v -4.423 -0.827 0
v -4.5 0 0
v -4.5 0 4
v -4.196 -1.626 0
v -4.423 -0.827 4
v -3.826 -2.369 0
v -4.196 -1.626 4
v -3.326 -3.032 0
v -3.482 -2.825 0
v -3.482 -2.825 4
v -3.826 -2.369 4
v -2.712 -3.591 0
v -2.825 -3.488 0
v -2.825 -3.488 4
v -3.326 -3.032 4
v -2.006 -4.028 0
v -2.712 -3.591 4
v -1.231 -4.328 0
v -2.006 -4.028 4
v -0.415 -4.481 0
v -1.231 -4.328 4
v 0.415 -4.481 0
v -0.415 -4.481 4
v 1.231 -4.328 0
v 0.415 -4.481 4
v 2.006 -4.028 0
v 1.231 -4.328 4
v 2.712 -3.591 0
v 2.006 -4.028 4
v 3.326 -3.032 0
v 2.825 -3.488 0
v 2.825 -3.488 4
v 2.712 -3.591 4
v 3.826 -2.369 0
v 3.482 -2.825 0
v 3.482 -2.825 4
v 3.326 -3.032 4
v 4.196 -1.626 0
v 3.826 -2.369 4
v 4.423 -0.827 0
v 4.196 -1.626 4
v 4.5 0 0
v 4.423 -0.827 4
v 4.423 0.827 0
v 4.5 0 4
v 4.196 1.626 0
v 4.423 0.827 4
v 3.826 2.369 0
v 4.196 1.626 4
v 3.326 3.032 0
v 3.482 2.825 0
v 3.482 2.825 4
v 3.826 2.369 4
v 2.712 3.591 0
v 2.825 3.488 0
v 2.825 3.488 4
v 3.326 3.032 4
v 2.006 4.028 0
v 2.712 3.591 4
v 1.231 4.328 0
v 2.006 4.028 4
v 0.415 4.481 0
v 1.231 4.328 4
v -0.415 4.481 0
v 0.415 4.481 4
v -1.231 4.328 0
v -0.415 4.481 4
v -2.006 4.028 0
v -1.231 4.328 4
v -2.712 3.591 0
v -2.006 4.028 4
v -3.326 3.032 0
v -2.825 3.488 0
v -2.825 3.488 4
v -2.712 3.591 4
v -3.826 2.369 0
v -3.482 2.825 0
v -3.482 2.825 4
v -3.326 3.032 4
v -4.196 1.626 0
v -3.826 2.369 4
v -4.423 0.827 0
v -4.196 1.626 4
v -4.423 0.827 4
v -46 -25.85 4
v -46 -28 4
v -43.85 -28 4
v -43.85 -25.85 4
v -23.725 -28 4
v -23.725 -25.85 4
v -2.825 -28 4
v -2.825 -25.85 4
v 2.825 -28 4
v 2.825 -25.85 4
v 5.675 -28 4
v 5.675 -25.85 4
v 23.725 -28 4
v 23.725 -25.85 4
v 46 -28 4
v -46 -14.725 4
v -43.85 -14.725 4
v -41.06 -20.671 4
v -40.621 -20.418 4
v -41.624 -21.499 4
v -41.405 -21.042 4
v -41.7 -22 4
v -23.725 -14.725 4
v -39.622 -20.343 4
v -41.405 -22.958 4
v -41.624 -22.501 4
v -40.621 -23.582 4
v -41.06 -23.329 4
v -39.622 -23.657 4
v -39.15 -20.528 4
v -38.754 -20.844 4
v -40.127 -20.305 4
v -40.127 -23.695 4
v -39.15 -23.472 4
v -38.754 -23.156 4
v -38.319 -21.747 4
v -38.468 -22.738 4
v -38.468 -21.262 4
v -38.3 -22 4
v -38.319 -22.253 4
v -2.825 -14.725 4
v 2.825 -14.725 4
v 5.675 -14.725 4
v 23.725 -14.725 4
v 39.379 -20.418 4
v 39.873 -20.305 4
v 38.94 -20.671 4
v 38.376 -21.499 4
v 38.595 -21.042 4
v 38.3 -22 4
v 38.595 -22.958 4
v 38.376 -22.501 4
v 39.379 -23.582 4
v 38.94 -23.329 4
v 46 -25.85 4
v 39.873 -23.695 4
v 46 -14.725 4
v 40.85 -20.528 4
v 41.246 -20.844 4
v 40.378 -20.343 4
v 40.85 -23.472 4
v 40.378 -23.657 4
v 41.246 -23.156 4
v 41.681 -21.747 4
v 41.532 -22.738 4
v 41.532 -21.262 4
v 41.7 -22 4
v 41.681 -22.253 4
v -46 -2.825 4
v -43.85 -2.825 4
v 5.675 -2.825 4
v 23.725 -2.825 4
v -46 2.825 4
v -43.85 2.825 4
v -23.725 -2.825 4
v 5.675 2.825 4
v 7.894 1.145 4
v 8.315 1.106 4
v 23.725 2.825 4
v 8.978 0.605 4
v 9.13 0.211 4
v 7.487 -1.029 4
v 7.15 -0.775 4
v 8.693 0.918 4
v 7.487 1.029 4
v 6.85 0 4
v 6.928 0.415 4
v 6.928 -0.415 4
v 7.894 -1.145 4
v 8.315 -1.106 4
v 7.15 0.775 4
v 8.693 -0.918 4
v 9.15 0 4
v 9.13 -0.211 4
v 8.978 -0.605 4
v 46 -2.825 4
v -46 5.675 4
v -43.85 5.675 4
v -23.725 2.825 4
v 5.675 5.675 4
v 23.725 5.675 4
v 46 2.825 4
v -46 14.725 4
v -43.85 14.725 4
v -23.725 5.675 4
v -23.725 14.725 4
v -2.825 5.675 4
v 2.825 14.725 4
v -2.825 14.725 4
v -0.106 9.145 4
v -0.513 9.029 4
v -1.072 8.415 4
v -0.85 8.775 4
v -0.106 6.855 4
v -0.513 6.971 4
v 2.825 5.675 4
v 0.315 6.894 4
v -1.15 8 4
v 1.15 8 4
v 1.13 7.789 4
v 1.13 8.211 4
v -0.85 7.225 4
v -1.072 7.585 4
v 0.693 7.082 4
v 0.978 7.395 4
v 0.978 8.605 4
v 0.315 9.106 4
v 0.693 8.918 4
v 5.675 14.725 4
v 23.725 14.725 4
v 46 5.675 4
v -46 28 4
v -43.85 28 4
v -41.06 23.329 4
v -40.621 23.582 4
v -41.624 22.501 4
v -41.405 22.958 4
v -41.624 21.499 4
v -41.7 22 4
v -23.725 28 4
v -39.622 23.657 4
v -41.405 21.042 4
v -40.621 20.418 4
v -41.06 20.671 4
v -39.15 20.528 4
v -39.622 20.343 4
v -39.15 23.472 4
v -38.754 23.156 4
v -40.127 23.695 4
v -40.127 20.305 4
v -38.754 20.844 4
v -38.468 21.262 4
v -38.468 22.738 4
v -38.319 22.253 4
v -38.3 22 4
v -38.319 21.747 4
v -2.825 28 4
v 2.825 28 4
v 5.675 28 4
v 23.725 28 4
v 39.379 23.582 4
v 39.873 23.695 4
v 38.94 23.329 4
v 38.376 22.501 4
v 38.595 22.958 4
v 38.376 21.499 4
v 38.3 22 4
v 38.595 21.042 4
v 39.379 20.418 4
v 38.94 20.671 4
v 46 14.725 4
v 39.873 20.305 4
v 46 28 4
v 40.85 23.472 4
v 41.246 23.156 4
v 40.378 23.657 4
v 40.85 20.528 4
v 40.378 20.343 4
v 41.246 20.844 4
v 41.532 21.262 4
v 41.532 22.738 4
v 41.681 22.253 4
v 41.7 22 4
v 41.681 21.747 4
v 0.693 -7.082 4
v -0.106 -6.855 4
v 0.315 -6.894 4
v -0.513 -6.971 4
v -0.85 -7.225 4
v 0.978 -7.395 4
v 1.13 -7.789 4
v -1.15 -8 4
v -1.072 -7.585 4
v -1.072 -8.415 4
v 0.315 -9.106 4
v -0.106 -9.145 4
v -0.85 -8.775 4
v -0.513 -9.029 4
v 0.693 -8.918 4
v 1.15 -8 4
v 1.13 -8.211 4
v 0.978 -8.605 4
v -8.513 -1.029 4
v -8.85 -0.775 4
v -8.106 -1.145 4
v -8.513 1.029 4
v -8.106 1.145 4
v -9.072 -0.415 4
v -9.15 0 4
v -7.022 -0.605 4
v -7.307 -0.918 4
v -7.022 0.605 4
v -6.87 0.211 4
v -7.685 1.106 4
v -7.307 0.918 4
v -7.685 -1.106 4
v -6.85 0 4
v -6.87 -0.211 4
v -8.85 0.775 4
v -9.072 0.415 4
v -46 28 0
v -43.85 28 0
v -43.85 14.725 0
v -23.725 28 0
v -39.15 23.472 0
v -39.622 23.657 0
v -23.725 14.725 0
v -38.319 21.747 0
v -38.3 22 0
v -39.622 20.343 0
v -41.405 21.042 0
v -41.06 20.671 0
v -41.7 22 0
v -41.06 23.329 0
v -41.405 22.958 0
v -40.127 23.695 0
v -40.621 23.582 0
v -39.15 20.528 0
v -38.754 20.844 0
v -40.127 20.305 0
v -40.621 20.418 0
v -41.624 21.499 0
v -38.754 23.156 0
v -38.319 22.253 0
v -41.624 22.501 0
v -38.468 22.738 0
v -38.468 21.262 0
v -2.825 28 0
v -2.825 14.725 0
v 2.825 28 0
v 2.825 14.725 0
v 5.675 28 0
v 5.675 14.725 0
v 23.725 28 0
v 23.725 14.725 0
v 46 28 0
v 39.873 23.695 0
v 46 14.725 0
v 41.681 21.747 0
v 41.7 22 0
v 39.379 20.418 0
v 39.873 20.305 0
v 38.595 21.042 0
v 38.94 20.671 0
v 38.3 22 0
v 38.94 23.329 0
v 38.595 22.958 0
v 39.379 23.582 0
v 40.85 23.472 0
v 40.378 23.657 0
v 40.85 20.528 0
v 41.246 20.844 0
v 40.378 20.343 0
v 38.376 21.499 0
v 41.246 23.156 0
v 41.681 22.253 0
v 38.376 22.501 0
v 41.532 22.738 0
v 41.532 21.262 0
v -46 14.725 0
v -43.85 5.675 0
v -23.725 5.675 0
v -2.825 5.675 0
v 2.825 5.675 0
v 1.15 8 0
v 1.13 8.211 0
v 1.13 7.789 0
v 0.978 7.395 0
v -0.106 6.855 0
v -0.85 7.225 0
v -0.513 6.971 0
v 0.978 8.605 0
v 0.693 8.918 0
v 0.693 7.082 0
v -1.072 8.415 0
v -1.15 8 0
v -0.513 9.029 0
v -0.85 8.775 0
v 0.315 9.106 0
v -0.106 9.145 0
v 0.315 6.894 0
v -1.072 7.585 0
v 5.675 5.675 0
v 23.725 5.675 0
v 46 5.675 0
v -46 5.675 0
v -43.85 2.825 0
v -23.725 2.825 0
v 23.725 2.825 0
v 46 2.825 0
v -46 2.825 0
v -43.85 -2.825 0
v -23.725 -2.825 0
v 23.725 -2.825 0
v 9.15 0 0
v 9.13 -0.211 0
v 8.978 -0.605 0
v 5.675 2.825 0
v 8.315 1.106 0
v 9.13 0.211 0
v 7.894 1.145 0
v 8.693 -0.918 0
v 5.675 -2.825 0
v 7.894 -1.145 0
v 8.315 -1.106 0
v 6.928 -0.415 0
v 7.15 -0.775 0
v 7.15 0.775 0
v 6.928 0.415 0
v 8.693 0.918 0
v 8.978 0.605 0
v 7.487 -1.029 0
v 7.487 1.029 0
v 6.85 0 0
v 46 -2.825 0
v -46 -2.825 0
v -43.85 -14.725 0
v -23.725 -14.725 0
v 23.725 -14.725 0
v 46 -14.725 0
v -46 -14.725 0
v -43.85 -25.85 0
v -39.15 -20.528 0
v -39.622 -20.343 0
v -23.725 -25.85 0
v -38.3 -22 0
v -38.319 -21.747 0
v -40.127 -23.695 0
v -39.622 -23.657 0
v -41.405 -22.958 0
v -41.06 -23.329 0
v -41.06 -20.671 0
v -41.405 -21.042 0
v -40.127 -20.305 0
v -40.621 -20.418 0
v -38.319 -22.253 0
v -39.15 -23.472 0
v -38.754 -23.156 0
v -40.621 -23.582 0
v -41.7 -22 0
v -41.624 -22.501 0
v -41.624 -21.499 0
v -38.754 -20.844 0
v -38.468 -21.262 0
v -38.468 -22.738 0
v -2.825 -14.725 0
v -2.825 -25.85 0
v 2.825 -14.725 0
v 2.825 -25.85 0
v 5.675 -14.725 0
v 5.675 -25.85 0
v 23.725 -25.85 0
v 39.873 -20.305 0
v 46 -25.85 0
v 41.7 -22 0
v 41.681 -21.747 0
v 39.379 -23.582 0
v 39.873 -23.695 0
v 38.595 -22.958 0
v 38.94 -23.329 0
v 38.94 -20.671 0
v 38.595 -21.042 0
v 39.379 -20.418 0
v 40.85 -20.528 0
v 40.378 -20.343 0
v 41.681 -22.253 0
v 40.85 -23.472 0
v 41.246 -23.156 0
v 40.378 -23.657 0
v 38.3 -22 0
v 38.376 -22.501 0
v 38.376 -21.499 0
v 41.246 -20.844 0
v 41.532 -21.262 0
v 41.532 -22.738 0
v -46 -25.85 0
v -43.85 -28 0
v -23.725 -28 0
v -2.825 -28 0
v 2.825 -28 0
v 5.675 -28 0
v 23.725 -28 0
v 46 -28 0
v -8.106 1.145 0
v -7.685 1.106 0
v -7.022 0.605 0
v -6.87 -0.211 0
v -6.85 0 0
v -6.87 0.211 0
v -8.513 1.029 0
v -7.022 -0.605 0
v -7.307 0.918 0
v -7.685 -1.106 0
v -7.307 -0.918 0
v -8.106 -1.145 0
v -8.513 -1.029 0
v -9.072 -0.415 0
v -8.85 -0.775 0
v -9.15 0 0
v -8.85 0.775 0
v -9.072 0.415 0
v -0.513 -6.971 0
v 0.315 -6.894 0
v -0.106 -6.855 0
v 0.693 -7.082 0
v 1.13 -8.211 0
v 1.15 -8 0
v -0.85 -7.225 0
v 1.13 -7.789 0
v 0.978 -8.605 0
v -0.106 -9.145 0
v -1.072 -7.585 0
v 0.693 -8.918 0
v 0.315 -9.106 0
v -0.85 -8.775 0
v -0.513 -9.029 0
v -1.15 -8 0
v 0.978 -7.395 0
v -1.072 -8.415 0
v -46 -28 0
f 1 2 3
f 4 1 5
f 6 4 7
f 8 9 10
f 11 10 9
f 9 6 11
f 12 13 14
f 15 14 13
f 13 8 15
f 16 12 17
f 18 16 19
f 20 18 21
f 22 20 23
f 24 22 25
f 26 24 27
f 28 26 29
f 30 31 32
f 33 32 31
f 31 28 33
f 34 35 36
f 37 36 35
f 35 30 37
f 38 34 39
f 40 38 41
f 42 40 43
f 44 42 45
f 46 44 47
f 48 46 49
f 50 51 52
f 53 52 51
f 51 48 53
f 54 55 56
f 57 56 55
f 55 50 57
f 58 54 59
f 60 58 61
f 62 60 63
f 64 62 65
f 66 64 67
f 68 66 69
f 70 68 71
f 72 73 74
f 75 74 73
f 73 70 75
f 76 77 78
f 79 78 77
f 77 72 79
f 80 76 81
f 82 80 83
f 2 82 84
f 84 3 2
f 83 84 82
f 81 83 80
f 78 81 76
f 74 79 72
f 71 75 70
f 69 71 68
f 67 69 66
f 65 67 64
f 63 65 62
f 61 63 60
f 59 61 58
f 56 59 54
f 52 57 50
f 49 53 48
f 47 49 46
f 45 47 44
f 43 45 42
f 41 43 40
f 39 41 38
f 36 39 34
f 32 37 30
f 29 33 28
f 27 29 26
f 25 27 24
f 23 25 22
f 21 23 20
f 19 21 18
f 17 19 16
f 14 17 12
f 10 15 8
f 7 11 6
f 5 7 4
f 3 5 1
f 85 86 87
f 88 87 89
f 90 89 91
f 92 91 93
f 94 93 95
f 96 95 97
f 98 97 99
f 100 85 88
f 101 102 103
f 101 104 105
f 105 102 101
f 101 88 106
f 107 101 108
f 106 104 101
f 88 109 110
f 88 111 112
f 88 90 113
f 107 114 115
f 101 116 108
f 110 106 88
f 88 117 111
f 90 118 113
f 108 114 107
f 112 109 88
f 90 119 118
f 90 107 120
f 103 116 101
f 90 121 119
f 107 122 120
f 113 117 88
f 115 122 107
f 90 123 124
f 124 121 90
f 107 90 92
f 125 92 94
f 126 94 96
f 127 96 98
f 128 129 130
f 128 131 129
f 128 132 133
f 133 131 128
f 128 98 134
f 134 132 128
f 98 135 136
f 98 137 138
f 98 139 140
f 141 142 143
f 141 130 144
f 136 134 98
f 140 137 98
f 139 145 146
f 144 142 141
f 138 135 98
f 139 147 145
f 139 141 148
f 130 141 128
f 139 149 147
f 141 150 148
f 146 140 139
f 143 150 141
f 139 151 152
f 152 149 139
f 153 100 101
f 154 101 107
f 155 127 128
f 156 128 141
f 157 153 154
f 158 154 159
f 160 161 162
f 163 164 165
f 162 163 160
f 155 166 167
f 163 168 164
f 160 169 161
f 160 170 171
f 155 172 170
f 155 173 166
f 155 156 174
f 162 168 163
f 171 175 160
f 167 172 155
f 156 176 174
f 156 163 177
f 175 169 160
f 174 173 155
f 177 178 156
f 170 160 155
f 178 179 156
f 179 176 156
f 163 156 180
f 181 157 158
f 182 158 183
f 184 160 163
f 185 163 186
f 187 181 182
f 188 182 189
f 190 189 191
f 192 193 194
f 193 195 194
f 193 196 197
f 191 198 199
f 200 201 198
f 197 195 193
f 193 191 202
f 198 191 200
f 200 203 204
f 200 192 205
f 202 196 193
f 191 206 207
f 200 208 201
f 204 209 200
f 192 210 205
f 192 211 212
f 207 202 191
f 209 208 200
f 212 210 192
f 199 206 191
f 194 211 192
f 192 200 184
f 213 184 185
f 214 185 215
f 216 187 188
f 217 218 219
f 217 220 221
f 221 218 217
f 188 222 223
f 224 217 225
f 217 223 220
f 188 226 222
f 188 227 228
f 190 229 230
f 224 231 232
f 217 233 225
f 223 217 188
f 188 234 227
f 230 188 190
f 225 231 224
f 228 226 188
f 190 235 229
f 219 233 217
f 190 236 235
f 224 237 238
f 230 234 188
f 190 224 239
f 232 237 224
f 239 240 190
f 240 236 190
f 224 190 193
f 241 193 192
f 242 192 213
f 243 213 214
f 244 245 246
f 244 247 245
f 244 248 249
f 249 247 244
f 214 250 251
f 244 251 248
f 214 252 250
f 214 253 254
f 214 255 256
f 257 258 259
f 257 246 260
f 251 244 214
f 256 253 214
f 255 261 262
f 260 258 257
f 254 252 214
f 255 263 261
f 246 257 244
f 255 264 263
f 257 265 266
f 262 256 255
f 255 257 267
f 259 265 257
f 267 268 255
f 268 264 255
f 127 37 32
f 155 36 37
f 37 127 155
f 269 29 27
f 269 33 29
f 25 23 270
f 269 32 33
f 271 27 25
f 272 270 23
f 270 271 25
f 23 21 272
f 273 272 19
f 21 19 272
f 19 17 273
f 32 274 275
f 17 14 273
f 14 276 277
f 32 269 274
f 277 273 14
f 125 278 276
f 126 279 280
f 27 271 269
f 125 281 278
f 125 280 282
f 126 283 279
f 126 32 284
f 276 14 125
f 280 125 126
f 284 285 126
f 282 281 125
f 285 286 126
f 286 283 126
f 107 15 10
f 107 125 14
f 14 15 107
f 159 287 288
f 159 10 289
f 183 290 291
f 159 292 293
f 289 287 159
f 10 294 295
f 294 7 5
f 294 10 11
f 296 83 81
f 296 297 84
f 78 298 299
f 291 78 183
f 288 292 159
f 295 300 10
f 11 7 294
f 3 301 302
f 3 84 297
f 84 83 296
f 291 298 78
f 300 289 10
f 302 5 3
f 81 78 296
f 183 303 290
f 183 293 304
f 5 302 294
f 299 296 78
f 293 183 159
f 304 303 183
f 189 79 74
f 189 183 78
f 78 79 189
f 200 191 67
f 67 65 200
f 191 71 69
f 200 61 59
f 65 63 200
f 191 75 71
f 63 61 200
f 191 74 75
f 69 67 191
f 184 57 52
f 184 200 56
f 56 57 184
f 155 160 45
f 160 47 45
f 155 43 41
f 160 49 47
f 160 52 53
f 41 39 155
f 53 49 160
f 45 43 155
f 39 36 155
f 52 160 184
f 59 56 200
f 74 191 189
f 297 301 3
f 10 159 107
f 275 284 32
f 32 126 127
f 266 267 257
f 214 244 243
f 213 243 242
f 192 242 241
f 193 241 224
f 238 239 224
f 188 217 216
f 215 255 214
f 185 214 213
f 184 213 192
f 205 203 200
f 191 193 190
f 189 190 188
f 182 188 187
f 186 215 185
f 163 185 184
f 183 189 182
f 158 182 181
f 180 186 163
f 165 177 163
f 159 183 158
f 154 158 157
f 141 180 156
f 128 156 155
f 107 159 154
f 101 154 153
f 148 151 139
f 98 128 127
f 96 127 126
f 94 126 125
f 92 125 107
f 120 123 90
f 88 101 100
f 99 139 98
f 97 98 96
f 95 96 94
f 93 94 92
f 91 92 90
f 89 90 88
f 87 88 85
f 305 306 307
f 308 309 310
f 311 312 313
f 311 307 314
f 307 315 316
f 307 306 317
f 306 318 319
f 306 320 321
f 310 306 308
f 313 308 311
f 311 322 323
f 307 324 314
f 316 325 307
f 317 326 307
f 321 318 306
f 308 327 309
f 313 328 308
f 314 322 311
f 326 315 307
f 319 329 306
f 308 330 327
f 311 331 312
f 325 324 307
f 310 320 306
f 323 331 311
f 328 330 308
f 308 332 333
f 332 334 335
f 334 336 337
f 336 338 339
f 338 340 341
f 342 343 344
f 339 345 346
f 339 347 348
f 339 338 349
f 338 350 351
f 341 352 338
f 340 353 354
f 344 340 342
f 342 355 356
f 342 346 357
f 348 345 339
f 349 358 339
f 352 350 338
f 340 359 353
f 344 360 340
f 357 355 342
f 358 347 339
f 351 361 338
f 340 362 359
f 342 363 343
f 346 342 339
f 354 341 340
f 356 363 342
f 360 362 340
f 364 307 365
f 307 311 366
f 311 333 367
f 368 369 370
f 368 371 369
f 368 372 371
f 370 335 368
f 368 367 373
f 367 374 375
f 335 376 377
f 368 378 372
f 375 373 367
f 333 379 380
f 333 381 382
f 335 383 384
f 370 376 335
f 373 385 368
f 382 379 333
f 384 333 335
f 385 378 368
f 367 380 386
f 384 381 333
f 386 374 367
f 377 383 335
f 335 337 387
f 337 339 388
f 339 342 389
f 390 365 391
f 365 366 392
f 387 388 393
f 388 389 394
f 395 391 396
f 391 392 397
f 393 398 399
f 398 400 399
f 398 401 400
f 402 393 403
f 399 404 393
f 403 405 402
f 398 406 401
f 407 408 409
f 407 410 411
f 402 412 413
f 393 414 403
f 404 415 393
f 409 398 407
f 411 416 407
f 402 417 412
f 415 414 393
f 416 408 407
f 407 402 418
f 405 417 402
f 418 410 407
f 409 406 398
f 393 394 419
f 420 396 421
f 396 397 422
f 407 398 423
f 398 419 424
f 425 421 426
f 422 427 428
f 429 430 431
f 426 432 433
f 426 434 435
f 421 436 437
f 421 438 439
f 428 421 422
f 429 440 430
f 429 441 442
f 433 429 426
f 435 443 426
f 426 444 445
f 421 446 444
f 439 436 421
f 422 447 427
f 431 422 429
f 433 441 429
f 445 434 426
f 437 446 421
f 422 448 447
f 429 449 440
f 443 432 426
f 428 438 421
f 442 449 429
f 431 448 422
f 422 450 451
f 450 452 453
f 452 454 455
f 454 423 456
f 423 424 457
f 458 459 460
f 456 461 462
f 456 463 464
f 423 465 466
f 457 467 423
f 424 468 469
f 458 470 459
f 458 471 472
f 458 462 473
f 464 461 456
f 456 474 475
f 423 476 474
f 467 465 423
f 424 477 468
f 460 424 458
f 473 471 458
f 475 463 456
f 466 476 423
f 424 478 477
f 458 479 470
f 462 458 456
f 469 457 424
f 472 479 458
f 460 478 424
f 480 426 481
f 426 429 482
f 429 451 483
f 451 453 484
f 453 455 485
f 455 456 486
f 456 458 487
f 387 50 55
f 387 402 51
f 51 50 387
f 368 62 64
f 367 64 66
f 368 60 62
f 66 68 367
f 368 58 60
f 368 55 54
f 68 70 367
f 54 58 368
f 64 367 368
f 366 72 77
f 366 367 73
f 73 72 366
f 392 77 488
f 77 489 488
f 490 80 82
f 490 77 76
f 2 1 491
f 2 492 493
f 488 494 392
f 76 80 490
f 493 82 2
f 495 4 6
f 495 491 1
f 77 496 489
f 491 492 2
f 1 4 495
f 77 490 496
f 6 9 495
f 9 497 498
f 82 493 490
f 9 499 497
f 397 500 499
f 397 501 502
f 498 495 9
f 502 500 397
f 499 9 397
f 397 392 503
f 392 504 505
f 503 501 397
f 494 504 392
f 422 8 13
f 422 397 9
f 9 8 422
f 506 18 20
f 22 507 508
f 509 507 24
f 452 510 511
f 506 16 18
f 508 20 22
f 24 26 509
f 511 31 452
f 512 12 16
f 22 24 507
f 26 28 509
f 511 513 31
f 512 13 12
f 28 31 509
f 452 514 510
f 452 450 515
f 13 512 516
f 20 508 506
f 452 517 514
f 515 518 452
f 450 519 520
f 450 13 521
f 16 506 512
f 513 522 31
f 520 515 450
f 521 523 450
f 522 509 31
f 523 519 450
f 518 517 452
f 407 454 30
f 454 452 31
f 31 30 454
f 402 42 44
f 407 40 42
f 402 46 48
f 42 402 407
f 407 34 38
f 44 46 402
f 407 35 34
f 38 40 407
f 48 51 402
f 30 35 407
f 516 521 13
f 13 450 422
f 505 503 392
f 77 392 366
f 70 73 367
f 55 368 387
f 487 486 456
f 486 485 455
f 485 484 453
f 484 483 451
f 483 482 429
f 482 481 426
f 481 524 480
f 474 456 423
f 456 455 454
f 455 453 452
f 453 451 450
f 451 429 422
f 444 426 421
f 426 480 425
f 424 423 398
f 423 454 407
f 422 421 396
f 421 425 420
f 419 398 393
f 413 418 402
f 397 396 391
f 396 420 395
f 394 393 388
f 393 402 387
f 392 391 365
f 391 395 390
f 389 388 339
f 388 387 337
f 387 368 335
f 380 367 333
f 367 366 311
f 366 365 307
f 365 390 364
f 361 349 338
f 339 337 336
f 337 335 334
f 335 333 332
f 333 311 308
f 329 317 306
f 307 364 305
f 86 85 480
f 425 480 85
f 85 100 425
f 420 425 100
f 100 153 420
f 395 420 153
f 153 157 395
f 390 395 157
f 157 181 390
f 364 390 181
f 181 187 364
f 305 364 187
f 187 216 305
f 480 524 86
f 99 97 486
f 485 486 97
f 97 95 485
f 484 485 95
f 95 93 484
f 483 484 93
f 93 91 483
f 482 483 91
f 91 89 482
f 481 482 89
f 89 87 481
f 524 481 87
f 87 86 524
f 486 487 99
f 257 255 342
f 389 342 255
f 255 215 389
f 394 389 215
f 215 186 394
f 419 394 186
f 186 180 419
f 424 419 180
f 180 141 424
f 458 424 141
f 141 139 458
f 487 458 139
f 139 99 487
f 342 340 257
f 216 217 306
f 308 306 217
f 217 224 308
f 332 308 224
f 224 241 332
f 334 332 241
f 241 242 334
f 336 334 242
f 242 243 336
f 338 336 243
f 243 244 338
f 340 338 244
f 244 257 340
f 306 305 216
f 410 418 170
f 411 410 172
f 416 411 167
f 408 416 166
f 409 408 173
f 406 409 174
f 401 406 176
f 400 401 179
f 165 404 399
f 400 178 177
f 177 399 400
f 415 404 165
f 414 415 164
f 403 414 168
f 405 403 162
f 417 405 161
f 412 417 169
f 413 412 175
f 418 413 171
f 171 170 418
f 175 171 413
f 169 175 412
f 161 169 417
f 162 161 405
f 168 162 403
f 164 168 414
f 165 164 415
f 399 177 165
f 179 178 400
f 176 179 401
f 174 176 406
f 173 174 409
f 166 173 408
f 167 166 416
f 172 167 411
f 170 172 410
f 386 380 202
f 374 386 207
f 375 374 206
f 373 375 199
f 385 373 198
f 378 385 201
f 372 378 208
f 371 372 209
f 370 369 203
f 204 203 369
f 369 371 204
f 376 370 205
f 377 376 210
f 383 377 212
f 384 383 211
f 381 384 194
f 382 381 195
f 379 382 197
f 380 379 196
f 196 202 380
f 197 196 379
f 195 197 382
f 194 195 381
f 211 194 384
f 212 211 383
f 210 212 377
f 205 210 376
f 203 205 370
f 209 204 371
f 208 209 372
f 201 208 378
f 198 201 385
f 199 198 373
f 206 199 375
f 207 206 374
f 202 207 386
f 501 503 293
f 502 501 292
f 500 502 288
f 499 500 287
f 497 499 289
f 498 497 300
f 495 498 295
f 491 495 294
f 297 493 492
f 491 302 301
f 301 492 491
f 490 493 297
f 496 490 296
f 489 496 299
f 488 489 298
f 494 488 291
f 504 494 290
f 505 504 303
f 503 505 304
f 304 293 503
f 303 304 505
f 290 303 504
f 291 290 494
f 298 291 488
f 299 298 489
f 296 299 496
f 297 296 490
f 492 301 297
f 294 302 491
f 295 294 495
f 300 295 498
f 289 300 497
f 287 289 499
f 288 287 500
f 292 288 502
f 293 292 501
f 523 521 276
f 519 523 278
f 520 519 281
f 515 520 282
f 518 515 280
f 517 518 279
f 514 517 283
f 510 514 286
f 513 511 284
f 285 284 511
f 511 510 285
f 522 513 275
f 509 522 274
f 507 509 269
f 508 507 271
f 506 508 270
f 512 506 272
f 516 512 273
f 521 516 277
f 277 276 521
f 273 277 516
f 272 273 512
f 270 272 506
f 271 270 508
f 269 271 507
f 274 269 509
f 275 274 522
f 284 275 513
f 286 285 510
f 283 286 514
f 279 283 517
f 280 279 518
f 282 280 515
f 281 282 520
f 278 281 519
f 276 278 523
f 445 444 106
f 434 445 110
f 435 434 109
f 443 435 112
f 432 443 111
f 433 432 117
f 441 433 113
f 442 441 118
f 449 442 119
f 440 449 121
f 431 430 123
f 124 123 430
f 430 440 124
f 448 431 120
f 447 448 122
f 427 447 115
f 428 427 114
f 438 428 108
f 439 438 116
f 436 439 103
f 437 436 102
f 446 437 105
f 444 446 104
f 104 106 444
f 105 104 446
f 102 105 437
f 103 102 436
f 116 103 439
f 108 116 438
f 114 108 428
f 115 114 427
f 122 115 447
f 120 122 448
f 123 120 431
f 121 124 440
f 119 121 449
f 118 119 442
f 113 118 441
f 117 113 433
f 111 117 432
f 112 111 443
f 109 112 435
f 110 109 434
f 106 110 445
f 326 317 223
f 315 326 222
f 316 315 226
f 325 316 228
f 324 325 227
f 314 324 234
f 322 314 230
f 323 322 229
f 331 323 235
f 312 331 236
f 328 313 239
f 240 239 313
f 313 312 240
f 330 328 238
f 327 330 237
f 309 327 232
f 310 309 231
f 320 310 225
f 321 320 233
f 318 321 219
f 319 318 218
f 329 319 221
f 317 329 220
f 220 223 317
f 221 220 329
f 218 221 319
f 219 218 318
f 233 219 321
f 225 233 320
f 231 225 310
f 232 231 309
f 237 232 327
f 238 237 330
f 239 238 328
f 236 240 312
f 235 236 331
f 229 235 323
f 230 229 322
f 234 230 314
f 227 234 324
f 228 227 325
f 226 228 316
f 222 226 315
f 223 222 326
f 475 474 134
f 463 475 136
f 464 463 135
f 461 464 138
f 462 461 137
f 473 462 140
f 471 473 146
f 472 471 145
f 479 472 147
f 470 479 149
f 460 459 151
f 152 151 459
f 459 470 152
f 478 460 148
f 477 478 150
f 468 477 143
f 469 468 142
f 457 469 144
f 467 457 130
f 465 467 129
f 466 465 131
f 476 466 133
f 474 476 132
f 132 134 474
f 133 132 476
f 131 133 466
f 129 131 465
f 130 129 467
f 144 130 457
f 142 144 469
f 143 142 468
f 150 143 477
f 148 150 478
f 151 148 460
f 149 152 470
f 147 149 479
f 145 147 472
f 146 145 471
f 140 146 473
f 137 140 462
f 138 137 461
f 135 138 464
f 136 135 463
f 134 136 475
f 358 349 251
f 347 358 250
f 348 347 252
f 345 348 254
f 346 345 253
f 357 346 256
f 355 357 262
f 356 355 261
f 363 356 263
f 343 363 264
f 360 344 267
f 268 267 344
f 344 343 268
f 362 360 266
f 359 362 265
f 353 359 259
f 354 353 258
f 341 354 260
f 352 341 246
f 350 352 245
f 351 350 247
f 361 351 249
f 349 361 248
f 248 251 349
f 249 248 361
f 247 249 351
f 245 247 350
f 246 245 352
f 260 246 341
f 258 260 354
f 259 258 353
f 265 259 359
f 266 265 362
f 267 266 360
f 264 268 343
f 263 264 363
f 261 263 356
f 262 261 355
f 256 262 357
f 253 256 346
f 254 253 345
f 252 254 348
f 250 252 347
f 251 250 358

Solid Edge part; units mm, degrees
sketch "Sketch1" plane through (0, 0, 0) normal (0, 0, 1) x (1, 0, 0)
  line L0 (-46, -28) -> (46, -28)
  line L1 (46, -28) -> (46, 28)
  line L2 (46, 28) -> (-46, 28)
  line L3 (-46, 28) -> (-46, -28)
  circle A0 centre (0, 0) radius 4.5
  circle A1 centre (8, 0) radius 1.15
  circle A2 centre (0, 8) radius 1.15
  circle A3 centre (-8, 0) radius 1.15
  circle A4 centre (0, -8) radius 1.15
  circle A5 centre (-40, -22) radius 1.7
  circle A6 centre (-40, 22) radius 1.7
  circle A7 centre (40, -22) radius 1.7
  circle A8 centre (40, 22) radius 1.7
extrude "Protrusion1" add sketch "Sketch1" along normal blind 4
